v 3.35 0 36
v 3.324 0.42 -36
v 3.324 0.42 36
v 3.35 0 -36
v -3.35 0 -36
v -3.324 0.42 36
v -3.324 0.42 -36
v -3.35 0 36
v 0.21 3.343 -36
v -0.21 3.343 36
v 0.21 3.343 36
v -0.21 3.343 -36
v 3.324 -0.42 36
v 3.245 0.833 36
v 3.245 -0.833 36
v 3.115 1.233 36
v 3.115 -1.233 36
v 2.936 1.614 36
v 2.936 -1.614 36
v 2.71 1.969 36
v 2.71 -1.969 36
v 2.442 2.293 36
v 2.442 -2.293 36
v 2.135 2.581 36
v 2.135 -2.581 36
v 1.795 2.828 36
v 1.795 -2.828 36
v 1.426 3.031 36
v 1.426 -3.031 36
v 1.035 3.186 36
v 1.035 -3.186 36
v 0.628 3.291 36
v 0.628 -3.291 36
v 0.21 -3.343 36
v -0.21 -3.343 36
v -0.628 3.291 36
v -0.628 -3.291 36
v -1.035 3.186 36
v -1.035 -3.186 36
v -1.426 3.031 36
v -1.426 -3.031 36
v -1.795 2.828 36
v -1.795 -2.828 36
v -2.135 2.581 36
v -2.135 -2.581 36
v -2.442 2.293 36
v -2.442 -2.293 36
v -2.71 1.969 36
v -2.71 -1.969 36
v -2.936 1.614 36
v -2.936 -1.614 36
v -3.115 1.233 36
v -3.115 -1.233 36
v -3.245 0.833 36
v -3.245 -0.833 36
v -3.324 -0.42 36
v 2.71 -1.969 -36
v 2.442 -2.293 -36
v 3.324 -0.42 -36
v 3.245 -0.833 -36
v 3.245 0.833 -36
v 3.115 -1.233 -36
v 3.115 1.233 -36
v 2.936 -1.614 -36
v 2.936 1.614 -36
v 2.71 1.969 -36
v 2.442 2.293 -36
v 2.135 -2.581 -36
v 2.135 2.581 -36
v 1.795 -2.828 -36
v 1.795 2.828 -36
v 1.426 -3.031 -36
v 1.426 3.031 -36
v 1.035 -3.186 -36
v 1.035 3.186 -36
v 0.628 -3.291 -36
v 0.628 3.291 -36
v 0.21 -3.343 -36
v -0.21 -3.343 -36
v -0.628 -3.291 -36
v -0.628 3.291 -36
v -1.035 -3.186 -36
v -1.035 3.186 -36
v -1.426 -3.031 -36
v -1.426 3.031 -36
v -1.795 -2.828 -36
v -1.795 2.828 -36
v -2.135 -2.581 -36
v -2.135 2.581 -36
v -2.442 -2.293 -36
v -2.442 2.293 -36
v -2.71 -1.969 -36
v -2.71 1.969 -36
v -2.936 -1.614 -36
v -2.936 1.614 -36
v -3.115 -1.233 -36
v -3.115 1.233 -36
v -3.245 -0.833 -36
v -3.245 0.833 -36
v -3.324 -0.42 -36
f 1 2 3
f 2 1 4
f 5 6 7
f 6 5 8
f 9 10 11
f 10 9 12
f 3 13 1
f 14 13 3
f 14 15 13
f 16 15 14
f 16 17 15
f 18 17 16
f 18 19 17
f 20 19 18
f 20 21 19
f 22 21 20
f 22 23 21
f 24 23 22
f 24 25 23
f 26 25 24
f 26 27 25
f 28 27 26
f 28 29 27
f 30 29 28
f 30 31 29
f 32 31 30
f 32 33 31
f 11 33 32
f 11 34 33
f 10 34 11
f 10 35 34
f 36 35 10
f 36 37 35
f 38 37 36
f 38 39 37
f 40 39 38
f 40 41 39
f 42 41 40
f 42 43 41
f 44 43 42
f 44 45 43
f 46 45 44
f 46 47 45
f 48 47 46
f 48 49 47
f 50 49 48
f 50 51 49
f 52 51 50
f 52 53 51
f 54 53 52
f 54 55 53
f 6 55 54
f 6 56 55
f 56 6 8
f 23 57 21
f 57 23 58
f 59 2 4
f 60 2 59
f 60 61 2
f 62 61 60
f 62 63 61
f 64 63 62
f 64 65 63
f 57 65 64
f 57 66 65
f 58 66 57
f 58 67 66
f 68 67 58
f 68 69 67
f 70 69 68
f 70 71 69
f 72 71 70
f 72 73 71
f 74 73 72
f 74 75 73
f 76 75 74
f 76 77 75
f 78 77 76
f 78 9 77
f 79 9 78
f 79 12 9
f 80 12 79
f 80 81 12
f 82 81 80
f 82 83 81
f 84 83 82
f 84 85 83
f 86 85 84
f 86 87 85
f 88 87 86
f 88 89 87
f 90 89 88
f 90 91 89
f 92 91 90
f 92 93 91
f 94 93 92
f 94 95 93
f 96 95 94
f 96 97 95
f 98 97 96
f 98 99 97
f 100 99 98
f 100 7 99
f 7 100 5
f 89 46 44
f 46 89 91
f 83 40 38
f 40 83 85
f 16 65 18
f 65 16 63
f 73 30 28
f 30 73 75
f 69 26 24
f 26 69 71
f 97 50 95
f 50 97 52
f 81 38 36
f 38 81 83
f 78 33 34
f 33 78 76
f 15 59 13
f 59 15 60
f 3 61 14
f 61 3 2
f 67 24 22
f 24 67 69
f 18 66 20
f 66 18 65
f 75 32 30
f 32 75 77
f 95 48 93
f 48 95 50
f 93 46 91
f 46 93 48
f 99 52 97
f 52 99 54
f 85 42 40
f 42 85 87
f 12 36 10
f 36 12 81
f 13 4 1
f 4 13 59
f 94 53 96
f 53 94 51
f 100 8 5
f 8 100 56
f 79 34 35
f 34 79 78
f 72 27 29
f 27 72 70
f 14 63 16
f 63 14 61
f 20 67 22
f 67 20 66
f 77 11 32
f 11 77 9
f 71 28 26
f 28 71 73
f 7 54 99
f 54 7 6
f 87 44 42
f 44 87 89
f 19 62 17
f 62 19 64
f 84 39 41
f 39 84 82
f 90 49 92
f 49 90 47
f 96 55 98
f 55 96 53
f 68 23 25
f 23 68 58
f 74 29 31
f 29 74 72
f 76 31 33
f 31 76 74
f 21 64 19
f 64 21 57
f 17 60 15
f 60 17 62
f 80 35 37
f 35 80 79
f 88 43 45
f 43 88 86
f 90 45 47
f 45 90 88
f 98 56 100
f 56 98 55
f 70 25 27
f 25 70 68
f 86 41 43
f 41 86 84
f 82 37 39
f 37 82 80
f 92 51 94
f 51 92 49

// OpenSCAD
$fn = 50;


difference() {
	union() {
		translate(v = [0, 0, -36.0000000000]) {
			cylinder(h = 72, r = 3.3500000000);
		}
	}
	union() {
		translate(v = [0, 0, -100.0000000000]) {
			cylinder(h = 200, r = 0);
		}
	}
}
